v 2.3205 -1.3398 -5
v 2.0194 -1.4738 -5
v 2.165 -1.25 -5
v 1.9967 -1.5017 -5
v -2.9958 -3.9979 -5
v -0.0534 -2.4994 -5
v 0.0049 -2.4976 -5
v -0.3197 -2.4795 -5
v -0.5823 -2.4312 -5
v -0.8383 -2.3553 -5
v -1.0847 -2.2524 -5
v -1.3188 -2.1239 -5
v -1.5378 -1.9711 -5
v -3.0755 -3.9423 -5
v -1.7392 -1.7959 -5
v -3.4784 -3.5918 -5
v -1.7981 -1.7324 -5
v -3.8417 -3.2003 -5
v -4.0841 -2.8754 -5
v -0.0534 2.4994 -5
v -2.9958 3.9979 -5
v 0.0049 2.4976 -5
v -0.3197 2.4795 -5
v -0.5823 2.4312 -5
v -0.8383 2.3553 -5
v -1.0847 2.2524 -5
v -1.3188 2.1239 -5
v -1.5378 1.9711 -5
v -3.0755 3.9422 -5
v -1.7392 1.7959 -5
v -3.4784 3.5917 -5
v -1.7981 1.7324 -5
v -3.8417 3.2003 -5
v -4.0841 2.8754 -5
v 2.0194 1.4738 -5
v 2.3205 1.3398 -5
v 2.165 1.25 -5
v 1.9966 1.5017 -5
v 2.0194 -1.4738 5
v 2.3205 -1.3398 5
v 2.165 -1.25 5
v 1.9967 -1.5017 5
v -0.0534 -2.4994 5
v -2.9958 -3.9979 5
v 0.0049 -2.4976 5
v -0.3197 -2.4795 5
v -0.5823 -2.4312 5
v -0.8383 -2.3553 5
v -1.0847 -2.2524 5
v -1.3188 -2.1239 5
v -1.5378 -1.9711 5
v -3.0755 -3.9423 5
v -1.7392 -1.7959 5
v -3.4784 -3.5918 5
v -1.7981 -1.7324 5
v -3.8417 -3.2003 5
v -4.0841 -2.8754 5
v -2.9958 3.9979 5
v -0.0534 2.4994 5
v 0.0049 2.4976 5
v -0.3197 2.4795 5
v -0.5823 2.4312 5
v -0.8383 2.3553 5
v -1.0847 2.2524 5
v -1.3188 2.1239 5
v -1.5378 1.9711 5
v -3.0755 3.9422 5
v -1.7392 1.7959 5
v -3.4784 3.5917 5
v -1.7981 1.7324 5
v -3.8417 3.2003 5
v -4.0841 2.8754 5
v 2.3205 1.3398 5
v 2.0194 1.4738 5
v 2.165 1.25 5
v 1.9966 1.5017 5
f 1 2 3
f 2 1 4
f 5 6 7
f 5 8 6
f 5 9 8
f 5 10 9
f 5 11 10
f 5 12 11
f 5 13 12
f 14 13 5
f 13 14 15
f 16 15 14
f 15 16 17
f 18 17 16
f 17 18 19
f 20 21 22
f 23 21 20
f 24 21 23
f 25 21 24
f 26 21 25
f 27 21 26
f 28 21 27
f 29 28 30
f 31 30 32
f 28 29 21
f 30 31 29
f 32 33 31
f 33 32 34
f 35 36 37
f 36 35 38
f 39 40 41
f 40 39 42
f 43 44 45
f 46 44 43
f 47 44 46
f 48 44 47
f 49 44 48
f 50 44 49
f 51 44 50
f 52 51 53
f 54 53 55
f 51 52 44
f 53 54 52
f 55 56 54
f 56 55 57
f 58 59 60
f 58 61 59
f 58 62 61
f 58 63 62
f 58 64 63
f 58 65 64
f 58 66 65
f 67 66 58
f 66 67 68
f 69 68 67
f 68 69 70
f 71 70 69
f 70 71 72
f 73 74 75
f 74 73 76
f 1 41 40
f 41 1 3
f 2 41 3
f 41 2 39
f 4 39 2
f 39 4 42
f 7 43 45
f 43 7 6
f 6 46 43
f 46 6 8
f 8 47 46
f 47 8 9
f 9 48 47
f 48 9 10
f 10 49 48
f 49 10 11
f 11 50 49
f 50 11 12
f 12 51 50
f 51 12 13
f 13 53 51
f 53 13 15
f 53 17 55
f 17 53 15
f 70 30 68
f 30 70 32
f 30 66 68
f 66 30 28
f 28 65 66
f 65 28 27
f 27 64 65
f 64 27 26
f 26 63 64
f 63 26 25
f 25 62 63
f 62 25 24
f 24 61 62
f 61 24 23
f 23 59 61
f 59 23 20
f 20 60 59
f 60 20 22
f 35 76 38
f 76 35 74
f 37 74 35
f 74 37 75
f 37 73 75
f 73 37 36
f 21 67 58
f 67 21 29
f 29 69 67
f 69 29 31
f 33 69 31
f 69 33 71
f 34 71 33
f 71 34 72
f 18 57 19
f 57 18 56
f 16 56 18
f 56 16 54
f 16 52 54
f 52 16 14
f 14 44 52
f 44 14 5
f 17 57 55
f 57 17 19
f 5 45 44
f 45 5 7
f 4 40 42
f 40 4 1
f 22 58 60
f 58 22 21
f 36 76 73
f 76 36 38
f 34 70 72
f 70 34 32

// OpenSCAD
// Generated by SolidPython 1.1.3 on 2025-02-20 04:03:51
$fn=50;


intersection() {
	translate(v = [-5.0000000000, -5.0000000000, -5.0000000000]) {
		linear_extrude(height = 10) {
			polygon(points = [[9.3301270189, 7.5000000000], [9.0387948484, 7.9475644476], [8.7013899854, 8.3615044513], [8.3217613875, 8.7370979763], [7.9042396813, 9.0700604263], [7.4535877600, 9.3565935206], [6.9749464512, 9.5934286231], [6.4737758721, 9.7778640289], [5.9557931435, 9.9077957850], [5.4269071715, 9.9817416901], [4.8931512411, 9.9988582039], [4.3606141916, 9.9589500691], [3.8353709579, 9.8624725392], [3.3234132705, 9.7105261849], [2.8305813044, 9.5048443395], [2.3624970575, 9.2477733259], [1.9245002169, 8.9422456905], [1.5215872470, 8.5917467505], [1.1583543913, 8.2002748347], [0.8389452414, 7.7722956725], [0.5670034681, 7.3126914512], [0.3456312568, 6.8267051218], [0.1773539185, 6.3198805903], [0.0640910829, 5.7979994752], [0.0071347997, 5.2670151533], [0.0071347997, 4.7329848467], [0.0640910829, 4.2020005248], [0.1773539185, 3.6801194097], [0.3456312568, 3.1732948782], [0.5670034681, 2.6873085488], [0.8389452414, 2.2277043275], [1.1583543913, 1.7997251653], [1.5215872470, 1.4082532495], [1.9245002169, 1.0577543095], [2.3624970575, 0.7522266741], [2.8305813044, 0.4951556605], [3.3234132705, 0.2894738151], [3.8353709579, 0.1375274608], [4.3606141916, 0.0410499309], [4.8931512411, 0.0011417961], [5.4269071715, 0.0182583099], [5.9557931435, 0.0922042150], [6.4737758721, 0.2221359711], [6.9749464512, 0.4065713769], [7.4535877600, 0.6434064794], [7.9042396813, 0.9299395737], [8.3217613875, 1.2629020237], [8.7013899854, 1.6384955487], [9.0387948484, 2.0524355524], [9.3301270189, 2.5000000000], [7.1650635095, 3.7500000000], [7.0193974242, 3.5262177762], [6.8506949927, 3.3192477743], [6.6608806938, 3.1314510119], [6.4521198406, 2.9649697869], [6.2267938800, 2.8217032397], [5.9874732256, 2.7032856885], [5.7368879360, 2.6110679855], [5.4778965718, 2.5461021075], [5.2134535857, 2.5091291549], [4.9465756205, 2.5005708980], [4.6803070958, 2.5205249654], [4.4176854790, 2.5687637304], [4.1617066352, 2.6447369076], [3.9152906522, 2.7475778302], [3.6812485287, 2.8761133371], [3.4622501085, 3.0288771547], [3.2607936235, 3.2041266248], [3.0791771957, 3.3998625827], [2.9194726207, 3.6138521637], [2.7835017341, 3.8436542744], [2.6728156284, 4.0866474391], [2.5886769593, 4.3400597048], [2.5320455415, 4.6010002624], [2.5035673999, 4.8664924234], [2.5035673999, 5.1335075766], [2.5320455415, 5.3989997376], [2.5886769593, 5.6599402952], [2.6728156284, 5.9133525609], [2.7835017341, 6.1563457256], [2.9194726207, 6.3861478363], [3.0791771957, 6.6001374173], [3.2607936235, 6.7958733752], [3.4622501085, 6.9711228453], [3.6812485287, 7.1238866629], [3.9152906522, 7.2524221698], [4.1617066352, 7.3552630924], [4.4176854790, 7.4312362696], [4.6803070958, 7.4794750346], [4.9465756205, 7.4994291020], [5.2134535857, 7.4908708451], [5.4778965718, 7.4538978925], [5.7368879360, 7.3889320145], [5.9874732256, 7.2967143115], [6.2267938800, 7.1782967603], [6.4521198406, 7.0350302131], [6.6608806938, 6.8685489881], [6.8506949927, 6.6807522257], [7.0193974242, 6.4737822238], [7.1650635095, 6.2500000000]]);
		}
	}
	rotate(a = -90, v = [0, 0, 1]) {
		translate(v = [-5.0000000000, -5.0000000000, -5.0000000000]) {
			linear_extrude(height = 10) {
				polygon(points = [[0, 0], [5.0000000000, 10], [10, 0], [8.3333333333, 0], [6.6666666667, 3.3333333333], [3.3333333333, 3.3333333333], [1.6666666667, 0]]);
			}
		}
	}
}
/***********************************************
*********      SolidPython code:      **********
************************************************
 
from solid import *
from solid.utils import *

import math
import matplotlib.pyplot as plt
import subprocess
import os

class Hole:
    def __init__(self, x, y, radius):
        """
        Hole defined by:
        :param x: x dimension for center point of the circle as a ratio of letter height
        :param y: y dimension for center point of the circle as a ratio of letter height
        :param radius: radius of circle as a ratio of letter height
        """
        self.x = x
        self.y = y
        self.radius = radius

class Letter3D:
    def __init__(self, name, outer_shape_points, height, holes=None):
        """
        3D Letter defined by:
        :param name: name of letter
        :param outer_shape_points: points defining the outer shape of the letter
        :param heigh: size of cube that letter fits inside
        :param holes: list of Holes
        """
        self.name = name
        self.outer_shape_points = outer_shape_points
        self.holes = holes if holes is None else []
        self.height = height


    def generate(self):
        shape = polygon(points=self.outer_shape_points)

        if self.holes:
            for hole in self.holes:
                circle_hole = circle(r=hole.radius*self.height)
                positioned_hole = translate([hole.x*self.height, hole.y*self.height])(circle_hole)
                shape = difference()(shape, positioned_hole)
        
        shape_3d = linear_extrude(height=self.height)(shape)
        shape_3d = translate([-self.height/2, -self.height/2, -self.height/2])(shape_3d)
        return shape_3d
    
    def render(self):
        scad_render_to_file(self.shape, f"output/{self.name}.scad", file_header='$fn=50;')
        subprocess.run(["C:\\Program Files\\OpenSCAD\\openscad.exe", "-o", f"output\\{self.name}.stl", f"output\\{self.name}.scad"])


class TwoLetter3D:
    def __init__(self, height, letterA, letterA_face, letterB=None, letterB_face=None):
        self.height = height
        self.letterA = letterA
        self.letterB = letterB
        self.letterA_face = letterA_face
        self.letterB_face = letterB_face

    def call_letter_generation(self, letter):
        letter = letter.upper()
        function_name = f"letter_{letter}"
        func = globals().get(function_name)
        if func is None:
            raise ValueError(f"No letter generation function defined for letter '{letter}'.")
        else:
            print(func)
        return func(self.height)
    
    def rotate_object(self, face, shape):
        face = face.lower()
        if face == "z":
            return shape
        if face == "x":
            return rotate(a=90, v=[0,1,0])(shape)
        if face == "y":
            return rotate(a=-90, v=[0,0,1])(shape)
        else:
            raise ValueError("Face must be one of 'x', 'y', or 'z'.")

    def render(self):
        if self.letterA:
            letterA3D = self.call_letter_generation(self.letterA)
            letterA3D = self.rotate_object(self.letterA_face, letterA3D)

        if self.letterB:
            letterB3D = self.call_letter_generation(self.letterB)
            letterB3D = self.rotate_object(self.letterB_face, letterB3D)
            combined = intersection()(letterA3D, letterB3D)
            file_name = self.letterA + self.letterB
            scad_render_to_file(combined, f"output/{file_name}.scad", file_header='$fn=50;')
            subprocess.run(["C:\\Program Files\\OpenSCAD\\openscad.exe", "-o", f"output\\{file_name}.stl", f"output\\{file_name}.scad"])
            return
        else:
            file_name = self.letterA
            scad_render_to_file(letterA3D, f"output/{file_name}.scad", file_header='$fn=50;')
            subprocess.run(["C:\\Program Files\\OpenSCAD\\openscad.exe", "-o", f"output\\{file_name}.stl", f"output\\{file_name}.scad"])
    
                

def arc_points(radius, start_angle, end_angle, center=[0,0], num_points=50):
    angles = [start_angle + i * (end_angle - start_angle) / (num_points - 1)
              for i in range(num_points)]
    points = [
        (center[0] + radius * math.cos(math.radians(angle)),
         center[1] + radius * math.sin(math.radians(angle)))
        for angle in angles
    ]
    return points

def letter_A(h):
    shape_points = [(0,0), (h/2, h), (h, 0), (5/6*h, 0), (2/3*h, 1/3*h), (1/3*h, 1/3*h), (h/6, 0)]
    holes = [Hole(1/2, 7/12, 1/6)]
    A = Letter3D("A", shape_points, h, holes)
    return A.generate()

def letter_B(h):
    top_arc_points = arc_points(h/4, 90, -90, center=[3/4*h, 3/4*h])
    bottom_arc_points = arc_points(h/4, 90, -90, center=[3/4*h, h/4])
    other_points = [(0,0),(0,h)]

    shape_points = top_arc_points + bottom_arc_points + other_points
    holes = [Hole(1/2, 3/4, 1/6), Hole(1/2, 1/4, 1/6)]
    B = Letter3D("B", shape_points, h, holes)
    return B.generate()

def letter_C(h):
    outer_arc_points = arc_points(h/2, 30, 330, center=[h/2,h/2])
    inner_arc_points = arc_points(h/4, 30, 330, center=[h/2,h/2])[::-1]
    shape_points = outer_arc_points + inner_arc_points
    # print(shape_points)
    C = Letter3D("C", shape_points, h)
    return C.generate()


def letter_D(h):
    outer_arc_points = arc_points(h/2, 90, -90, center= [h/2, h/2])
    shape_points = outer_arc_points + [(0,0), (0, h)]
    holes = [Hole(1/2, 1/2, 1/6)]
    D = Letter3D("D", shape_points, h, holes)
    return D.generate()

def letter_E(h):
    points = [(0,0), (h,0), (h,h/5), (h/5,h/5), (h/5,2/5*h), (3/4*h,2/5*h), (3/4*h,3/5*h), (h/5,3/5*h), (h/5,4/5*h), (h,4/5*h), (h,h), (0,h)]
    E = Letter3D("E", points, h)
    return E.generate()

def letter_F(h):
    points = [(0,0), (h/5,0), (h/5,2/5*h), (3/4*h,2/5*h), (3/4*h,3/5*h), (h/5,3/5*h), (h/5,4/5*h), (h,4/5*h), (h,h), (0,h)]
    F = Letter3D("F", points, h)
    return F.generate()

if __name__ == "__main__":
    os.makedirs("output", exist_ok=True)

    letters = [chr(x) for x in range(ord('A'), ord('F') + 1)]
    for letter in letters:
        for other_letter in letters:
            shape = TwoLetter3D(10, letter, "z", other_letter, "y")
            shape.render()
 
 
************************************************/
